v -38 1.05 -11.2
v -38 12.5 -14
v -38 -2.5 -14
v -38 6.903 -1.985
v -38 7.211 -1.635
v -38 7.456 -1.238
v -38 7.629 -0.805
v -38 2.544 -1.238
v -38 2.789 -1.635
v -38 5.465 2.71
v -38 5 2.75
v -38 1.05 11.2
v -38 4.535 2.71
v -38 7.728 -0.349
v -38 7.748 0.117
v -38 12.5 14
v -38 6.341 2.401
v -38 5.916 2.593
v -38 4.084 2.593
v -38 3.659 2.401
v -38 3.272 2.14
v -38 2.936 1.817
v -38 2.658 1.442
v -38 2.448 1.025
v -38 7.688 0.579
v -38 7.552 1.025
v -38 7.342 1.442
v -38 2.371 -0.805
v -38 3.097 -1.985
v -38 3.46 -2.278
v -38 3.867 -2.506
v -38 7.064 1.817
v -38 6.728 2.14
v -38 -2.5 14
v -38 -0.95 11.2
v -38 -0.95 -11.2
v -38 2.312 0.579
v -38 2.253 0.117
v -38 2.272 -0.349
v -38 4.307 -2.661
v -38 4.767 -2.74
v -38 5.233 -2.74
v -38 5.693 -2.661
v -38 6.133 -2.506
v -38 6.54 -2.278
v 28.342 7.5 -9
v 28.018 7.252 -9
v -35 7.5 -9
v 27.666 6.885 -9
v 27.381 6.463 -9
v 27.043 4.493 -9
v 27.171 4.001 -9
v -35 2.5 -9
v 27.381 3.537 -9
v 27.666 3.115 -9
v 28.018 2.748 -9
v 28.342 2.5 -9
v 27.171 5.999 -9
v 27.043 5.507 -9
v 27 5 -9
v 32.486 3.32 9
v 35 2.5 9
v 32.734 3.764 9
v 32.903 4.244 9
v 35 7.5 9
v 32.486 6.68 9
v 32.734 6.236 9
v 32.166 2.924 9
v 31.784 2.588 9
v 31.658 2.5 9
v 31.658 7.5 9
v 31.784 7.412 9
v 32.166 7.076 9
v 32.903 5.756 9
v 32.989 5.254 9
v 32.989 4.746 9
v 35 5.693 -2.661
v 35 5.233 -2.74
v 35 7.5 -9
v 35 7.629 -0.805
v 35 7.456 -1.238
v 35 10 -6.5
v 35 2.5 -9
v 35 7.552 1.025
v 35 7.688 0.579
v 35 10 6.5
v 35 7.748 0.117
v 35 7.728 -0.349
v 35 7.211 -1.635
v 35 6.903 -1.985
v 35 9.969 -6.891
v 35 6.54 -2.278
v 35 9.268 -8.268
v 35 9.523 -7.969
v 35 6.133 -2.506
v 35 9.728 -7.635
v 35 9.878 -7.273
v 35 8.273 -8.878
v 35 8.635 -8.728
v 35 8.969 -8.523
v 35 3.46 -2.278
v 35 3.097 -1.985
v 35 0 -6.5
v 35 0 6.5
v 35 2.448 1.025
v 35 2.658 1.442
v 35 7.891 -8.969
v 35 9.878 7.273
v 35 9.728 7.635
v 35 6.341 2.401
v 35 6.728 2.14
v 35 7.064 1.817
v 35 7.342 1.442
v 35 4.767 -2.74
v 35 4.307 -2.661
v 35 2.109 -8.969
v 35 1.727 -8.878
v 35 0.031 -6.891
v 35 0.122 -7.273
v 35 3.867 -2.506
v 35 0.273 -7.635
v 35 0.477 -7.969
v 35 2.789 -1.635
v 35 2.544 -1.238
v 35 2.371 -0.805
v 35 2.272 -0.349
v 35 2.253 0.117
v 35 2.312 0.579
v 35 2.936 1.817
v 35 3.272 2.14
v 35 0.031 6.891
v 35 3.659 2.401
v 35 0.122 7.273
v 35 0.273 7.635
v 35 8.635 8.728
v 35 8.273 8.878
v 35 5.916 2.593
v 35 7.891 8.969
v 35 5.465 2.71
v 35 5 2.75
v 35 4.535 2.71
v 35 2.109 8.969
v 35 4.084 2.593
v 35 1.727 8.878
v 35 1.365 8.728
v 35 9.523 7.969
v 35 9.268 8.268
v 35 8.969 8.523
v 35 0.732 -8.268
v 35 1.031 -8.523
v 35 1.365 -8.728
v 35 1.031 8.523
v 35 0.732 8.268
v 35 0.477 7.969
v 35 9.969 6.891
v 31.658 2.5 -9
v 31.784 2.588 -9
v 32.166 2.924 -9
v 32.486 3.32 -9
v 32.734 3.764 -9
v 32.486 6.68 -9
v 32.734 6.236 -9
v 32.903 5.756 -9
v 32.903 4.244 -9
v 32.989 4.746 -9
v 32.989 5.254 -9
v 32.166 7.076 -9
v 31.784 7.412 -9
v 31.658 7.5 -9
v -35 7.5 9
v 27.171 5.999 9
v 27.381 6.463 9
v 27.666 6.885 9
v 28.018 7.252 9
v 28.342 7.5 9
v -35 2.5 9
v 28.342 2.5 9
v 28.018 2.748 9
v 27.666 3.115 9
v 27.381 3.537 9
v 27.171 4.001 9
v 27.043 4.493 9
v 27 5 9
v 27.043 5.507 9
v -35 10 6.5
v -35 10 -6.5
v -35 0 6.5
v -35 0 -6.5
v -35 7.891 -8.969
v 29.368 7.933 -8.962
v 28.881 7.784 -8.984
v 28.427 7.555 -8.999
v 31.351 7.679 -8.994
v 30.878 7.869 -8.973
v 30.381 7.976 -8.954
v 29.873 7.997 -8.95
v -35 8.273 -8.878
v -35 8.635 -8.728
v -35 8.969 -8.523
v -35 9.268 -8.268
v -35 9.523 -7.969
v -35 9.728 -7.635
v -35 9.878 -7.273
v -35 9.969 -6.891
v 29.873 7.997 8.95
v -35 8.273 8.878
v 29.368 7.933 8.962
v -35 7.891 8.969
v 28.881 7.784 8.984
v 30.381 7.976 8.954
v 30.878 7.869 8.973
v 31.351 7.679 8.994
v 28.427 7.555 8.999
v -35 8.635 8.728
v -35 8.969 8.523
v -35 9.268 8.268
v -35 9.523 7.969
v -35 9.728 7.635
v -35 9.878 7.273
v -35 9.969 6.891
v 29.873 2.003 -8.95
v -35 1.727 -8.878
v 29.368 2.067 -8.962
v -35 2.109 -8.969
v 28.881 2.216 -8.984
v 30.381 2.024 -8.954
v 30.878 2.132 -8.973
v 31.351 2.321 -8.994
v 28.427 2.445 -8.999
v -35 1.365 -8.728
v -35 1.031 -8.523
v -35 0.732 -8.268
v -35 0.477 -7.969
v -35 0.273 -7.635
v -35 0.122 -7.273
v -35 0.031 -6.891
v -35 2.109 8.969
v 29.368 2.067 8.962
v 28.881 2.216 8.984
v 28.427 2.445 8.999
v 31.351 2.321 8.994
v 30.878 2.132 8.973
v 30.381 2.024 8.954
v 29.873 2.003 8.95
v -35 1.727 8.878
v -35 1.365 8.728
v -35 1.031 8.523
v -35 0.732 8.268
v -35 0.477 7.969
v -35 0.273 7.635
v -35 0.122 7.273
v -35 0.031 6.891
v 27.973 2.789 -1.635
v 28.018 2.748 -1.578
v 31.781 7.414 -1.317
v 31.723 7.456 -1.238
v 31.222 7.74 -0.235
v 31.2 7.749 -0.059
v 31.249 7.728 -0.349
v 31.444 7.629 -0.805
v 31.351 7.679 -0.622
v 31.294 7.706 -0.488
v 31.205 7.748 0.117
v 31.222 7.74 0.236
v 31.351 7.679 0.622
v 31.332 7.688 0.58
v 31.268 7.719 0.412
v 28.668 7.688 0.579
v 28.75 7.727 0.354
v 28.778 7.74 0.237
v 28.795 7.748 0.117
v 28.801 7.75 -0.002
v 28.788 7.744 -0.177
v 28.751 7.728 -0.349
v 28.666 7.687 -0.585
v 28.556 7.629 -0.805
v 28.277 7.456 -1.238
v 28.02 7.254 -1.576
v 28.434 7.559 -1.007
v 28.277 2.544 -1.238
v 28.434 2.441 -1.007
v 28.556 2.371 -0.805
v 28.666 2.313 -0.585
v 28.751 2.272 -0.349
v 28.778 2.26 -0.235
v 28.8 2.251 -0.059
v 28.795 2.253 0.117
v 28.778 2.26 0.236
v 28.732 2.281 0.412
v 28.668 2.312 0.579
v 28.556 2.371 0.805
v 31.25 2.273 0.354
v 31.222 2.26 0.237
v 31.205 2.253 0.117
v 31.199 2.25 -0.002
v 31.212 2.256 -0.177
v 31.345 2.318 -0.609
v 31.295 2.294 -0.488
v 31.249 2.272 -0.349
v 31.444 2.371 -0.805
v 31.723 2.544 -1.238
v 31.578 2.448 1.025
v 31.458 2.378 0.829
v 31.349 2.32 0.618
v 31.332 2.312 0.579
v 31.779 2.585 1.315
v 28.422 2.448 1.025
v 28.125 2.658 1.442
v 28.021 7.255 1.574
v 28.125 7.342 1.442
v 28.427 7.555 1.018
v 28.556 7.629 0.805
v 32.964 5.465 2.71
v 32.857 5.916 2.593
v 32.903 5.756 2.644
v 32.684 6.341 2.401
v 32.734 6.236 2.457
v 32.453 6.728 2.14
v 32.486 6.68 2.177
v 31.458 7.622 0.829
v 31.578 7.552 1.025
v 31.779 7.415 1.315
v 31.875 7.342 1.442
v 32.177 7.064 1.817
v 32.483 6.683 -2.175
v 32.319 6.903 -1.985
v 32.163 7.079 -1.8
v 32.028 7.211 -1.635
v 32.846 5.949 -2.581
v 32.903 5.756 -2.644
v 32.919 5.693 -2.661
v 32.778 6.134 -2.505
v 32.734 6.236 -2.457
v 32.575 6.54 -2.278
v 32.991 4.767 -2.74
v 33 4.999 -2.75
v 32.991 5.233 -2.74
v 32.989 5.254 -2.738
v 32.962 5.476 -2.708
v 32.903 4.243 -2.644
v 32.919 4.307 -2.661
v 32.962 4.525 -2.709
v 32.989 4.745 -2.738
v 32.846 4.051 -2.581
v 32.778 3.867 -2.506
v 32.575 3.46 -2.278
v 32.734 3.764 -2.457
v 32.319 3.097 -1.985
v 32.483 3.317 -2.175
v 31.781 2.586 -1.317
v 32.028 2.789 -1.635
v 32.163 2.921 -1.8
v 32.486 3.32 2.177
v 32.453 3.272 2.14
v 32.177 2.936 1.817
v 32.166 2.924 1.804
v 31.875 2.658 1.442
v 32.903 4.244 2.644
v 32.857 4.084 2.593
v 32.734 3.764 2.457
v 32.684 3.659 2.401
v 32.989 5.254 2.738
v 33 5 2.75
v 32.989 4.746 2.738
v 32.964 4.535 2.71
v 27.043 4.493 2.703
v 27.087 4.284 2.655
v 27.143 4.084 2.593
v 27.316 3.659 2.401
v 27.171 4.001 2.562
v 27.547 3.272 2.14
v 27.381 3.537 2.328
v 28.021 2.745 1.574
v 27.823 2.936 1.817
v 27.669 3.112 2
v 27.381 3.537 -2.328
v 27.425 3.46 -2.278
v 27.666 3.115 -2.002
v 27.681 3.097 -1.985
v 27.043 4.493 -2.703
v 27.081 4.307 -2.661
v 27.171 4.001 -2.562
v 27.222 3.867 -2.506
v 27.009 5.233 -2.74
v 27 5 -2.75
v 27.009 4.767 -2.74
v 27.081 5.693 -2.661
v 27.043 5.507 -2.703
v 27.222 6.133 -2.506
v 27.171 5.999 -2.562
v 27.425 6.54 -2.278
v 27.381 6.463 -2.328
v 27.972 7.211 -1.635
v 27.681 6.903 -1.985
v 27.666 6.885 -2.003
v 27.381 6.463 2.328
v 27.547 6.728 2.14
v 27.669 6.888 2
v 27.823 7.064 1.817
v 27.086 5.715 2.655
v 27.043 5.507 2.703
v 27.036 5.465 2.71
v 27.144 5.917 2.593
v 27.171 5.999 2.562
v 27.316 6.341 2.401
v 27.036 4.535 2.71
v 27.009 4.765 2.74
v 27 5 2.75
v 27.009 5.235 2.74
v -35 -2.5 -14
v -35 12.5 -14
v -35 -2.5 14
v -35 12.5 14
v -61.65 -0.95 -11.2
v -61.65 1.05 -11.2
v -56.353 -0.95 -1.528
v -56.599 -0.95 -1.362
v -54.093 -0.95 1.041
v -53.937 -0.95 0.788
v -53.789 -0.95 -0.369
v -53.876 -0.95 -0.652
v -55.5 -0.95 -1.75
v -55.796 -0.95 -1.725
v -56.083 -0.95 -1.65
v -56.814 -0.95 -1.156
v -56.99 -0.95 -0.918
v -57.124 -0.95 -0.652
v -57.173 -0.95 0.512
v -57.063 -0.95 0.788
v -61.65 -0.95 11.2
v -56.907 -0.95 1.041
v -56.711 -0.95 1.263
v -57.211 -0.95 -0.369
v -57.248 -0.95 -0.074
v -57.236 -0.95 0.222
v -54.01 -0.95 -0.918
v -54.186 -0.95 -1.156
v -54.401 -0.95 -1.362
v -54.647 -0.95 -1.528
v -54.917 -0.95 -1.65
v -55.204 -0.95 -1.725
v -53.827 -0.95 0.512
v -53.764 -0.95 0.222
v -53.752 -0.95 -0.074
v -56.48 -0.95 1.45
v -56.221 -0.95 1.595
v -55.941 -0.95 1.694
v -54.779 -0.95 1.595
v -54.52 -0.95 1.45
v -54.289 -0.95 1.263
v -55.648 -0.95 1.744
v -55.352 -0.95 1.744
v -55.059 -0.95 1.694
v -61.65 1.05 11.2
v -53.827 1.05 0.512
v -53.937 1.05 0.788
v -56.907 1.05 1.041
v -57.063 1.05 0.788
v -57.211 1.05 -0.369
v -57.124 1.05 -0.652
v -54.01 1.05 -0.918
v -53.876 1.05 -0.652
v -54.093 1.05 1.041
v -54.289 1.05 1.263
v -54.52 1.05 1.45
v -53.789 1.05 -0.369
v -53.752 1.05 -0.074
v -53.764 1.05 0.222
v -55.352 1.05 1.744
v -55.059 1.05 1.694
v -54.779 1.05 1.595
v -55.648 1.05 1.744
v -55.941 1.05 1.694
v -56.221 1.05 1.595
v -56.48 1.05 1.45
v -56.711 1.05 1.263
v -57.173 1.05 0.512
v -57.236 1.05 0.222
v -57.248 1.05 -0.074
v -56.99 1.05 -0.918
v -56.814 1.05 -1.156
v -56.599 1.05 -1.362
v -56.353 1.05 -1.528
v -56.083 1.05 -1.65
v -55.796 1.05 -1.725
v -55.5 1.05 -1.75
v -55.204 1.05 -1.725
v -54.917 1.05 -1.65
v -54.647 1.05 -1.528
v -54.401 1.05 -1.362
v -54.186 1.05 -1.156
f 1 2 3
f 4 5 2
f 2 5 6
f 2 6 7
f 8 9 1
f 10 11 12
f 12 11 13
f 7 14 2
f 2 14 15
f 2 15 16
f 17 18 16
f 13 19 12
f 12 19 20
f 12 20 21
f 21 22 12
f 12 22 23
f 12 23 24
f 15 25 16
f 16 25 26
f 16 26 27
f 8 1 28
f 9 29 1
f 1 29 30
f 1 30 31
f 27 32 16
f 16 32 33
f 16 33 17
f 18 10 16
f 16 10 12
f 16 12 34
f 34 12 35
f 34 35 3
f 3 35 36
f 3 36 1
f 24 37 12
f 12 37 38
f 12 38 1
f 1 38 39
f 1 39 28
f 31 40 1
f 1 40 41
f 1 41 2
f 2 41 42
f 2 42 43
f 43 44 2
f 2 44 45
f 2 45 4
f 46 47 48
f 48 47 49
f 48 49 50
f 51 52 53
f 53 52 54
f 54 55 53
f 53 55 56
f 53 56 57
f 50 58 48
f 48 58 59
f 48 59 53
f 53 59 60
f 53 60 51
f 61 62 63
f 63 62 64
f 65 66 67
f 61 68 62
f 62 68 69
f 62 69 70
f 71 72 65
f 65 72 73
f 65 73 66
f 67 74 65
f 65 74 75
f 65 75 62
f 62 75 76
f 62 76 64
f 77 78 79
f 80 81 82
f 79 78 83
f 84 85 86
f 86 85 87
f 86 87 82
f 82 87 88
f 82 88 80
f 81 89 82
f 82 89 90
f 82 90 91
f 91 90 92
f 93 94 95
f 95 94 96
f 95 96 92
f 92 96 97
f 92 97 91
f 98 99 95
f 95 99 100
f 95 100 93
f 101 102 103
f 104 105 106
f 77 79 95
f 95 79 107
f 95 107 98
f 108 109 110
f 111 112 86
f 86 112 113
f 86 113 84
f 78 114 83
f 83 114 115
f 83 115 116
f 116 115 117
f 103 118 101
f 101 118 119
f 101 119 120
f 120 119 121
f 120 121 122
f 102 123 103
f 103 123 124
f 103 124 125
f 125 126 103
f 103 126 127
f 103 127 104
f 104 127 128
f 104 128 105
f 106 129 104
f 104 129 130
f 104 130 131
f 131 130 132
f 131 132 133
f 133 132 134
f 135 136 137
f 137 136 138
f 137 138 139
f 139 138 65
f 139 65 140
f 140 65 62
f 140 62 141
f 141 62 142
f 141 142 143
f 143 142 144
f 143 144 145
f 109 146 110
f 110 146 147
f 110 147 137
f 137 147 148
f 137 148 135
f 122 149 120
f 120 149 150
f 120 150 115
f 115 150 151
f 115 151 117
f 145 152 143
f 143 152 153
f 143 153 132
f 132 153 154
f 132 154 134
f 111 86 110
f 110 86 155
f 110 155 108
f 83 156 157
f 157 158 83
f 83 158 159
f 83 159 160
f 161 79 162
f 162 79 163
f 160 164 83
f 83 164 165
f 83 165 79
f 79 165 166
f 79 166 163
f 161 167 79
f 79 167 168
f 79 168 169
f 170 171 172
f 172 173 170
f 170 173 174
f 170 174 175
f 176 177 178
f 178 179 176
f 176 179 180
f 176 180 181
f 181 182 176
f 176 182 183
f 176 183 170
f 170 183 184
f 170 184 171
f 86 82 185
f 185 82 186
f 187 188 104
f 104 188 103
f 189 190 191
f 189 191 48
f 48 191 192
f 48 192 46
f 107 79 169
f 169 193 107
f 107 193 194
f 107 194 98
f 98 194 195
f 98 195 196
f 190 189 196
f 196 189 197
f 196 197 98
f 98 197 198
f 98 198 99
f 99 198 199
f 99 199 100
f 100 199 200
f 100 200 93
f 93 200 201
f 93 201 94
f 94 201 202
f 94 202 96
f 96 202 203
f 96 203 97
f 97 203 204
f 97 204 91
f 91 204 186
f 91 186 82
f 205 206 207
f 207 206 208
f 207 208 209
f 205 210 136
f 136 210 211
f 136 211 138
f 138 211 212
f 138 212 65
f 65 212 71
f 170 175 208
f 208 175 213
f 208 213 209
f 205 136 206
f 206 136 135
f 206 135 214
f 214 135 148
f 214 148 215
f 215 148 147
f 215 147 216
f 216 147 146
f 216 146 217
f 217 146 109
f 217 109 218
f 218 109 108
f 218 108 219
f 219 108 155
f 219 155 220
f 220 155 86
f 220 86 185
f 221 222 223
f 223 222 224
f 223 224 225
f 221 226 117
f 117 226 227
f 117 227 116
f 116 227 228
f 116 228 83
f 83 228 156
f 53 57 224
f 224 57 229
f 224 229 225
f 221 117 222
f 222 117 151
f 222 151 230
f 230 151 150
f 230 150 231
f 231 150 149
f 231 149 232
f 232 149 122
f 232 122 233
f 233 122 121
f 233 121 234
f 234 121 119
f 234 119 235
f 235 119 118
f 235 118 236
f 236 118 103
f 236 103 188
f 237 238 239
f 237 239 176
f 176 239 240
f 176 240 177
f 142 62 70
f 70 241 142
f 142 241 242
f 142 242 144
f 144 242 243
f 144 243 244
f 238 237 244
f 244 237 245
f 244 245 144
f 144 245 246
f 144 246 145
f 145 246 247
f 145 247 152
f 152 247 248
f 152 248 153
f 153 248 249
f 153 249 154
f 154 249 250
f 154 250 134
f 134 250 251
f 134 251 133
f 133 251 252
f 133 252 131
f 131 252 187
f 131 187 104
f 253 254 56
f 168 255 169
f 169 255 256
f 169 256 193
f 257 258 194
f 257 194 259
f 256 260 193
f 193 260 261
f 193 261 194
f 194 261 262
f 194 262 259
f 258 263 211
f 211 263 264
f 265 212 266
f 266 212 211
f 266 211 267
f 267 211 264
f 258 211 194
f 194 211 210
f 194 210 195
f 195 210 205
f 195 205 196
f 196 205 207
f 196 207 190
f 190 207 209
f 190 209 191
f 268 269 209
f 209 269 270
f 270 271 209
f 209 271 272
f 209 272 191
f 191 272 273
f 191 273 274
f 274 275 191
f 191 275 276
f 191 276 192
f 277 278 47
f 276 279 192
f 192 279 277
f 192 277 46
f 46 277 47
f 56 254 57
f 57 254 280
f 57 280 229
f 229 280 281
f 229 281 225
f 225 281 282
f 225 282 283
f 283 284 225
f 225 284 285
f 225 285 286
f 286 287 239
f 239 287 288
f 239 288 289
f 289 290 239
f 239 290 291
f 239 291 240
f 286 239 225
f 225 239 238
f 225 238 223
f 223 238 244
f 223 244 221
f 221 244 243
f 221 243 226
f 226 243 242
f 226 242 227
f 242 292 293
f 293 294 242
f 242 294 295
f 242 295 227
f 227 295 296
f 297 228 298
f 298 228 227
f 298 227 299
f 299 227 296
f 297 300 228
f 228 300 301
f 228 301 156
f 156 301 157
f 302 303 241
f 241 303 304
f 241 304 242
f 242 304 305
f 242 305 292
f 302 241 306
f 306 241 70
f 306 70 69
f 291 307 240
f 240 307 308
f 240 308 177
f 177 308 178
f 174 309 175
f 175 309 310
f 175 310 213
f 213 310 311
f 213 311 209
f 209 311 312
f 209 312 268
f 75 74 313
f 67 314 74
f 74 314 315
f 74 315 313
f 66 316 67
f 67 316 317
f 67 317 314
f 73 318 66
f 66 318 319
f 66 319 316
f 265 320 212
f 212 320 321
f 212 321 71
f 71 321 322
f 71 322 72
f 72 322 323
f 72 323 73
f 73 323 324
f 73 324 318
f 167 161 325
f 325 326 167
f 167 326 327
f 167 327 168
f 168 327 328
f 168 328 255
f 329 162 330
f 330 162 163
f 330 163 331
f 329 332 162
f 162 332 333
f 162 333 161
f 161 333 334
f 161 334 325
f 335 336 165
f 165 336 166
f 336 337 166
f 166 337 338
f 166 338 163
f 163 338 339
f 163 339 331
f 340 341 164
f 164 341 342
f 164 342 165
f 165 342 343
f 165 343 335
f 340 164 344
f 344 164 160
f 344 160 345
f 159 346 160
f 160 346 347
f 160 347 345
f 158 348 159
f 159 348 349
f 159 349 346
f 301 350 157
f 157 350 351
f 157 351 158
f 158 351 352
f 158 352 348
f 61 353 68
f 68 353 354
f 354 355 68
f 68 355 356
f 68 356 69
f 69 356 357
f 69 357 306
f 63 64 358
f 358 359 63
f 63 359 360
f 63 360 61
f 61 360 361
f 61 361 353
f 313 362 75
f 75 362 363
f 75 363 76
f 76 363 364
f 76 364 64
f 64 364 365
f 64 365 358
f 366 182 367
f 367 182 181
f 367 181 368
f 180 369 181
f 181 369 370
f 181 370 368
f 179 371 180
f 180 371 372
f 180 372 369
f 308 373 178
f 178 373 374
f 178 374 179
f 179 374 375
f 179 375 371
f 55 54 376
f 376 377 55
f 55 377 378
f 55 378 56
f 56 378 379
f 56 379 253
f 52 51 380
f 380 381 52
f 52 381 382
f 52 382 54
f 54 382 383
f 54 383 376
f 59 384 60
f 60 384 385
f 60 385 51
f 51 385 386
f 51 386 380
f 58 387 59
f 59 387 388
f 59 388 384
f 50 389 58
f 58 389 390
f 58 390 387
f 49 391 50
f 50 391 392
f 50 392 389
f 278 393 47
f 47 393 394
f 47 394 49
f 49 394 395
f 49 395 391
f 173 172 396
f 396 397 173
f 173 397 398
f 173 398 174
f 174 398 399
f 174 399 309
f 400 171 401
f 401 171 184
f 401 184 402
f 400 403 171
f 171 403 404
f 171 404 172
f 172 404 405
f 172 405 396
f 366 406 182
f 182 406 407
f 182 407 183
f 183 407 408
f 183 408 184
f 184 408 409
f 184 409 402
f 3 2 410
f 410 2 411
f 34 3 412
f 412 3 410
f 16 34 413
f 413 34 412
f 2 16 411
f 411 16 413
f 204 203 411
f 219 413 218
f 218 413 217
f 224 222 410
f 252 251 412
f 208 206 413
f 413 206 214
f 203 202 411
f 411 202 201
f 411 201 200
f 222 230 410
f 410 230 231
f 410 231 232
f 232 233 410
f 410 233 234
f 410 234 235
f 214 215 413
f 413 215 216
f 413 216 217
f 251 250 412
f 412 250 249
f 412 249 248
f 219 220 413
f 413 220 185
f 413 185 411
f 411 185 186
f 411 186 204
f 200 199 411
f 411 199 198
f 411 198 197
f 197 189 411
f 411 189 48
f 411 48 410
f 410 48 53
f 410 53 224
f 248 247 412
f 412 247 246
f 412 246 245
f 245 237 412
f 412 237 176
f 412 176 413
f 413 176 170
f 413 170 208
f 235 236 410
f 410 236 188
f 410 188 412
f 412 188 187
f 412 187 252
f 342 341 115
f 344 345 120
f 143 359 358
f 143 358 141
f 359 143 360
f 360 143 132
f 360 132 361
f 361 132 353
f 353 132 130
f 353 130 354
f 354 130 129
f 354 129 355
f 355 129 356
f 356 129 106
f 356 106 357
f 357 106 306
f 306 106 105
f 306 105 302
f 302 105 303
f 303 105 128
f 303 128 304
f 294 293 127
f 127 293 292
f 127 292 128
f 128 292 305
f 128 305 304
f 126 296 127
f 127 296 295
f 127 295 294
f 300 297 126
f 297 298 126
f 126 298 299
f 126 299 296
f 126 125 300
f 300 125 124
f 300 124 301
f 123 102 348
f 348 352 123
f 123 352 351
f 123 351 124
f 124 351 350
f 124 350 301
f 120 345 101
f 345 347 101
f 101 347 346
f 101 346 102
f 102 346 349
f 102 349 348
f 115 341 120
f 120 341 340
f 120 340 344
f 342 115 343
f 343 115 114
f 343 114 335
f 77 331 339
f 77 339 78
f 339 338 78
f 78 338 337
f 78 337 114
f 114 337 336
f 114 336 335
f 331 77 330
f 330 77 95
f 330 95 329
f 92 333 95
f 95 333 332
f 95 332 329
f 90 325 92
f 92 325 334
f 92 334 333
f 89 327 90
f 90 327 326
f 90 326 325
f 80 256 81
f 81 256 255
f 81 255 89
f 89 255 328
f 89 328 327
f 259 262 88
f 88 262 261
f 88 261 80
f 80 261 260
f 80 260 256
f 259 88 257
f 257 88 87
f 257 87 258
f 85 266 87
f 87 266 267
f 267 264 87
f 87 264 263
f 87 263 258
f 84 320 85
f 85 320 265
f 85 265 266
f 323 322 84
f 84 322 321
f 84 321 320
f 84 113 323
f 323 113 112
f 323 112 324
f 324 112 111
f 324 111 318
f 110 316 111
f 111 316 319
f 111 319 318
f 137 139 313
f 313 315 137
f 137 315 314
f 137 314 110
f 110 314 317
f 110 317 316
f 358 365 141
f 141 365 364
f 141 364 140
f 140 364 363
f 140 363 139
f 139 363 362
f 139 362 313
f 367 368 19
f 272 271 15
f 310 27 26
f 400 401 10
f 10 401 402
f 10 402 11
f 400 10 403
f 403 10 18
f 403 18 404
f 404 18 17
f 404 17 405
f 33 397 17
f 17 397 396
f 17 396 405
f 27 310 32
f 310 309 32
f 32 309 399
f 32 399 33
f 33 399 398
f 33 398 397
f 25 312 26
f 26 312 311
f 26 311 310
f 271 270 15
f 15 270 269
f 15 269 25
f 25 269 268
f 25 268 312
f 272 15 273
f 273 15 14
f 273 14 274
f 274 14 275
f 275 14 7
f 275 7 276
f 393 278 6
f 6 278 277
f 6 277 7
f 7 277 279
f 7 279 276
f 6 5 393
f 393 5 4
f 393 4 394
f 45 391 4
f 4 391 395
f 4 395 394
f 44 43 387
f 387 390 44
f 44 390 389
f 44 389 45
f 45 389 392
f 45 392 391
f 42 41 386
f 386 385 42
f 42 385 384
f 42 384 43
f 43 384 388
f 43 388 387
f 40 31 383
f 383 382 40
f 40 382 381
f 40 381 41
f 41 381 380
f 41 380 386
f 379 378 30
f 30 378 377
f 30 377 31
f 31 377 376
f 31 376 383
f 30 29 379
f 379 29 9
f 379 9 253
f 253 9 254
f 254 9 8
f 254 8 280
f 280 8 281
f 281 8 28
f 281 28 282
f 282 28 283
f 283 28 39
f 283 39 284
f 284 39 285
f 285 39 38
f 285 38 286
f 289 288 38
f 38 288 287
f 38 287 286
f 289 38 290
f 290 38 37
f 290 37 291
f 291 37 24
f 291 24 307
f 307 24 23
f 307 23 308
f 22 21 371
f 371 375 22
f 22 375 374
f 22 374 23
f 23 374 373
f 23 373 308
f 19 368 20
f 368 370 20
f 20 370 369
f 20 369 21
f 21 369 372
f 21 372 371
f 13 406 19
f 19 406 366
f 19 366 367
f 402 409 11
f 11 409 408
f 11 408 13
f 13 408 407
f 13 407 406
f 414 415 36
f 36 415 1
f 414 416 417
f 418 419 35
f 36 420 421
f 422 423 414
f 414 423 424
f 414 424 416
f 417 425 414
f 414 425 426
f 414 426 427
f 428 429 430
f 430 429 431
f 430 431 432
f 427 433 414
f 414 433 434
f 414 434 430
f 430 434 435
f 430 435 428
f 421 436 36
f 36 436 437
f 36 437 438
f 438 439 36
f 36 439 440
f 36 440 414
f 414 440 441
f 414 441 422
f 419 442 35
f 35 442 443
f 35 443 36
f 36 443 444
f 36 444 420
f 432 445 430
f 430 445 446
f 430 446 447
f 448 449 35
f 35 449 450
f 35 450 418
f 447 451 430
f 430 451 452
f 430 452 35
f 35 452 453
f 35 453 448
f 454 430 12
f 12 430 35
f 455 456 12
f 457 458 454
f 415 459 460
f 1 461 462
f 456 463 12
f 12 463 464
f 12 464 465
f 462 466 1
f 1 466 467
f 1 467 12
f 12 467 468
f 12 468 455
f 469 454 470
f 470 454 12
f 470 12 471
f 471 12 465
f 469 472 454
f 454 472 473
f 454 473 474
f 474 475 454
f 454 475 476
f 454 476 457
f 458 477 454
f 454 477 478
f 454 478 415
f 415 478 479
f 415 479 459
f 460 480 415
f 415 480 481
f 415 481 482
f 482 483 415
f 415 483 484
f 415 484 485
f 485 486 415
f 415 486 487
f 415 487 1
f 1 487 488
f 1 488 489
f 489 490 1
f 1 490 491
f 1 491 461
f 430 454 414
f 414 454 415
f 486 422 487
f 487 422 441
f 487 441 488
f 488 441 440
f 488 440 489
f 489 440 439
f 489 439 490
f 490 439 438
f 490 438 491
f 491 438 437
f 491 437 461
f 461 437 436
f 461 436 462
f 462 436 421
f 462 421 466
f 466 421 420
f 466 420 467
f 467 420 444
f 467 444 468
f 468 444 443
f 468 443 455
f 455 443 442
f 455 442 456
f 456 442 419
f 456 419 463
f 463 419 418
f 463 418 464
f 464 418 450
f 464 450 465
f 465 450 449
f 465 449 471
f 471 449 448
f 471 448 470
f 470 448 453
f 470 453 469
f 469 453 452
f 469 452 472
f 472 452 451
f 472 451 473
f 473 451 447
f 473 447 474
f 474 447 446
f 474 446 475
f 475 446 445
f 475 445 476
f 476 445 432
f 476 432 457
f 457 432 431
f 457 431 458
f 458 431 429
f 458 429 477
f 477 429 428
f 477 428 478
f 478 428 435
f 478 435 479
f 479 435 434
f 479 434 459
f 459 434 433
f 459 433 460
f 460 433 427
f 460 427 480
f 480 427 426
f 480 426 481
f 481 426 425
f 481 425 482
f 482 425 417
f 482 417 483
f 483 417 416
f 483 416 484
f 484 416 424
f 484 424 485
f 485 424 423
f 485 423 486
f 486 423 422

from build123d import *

# Parameters (mm, degrees)
SCHIZZO1_W                   = 70
SCHIZZO1_H                   = 18
ESTRUSIONE_ESTRUSIONE1_DEPTH = 10
RACCORDO1_R                  = 2.5
RACCORDO2_R                  = 2.5
RACCORDO3_R                  = 2.5
RACCORDO4_R                  = 2.5
FORO_PER_VITE_5_16_3_D       = 5.999999938
SCHIZZO6_W                   = 28
SCHIZZO6_H                   = 15
ESTRUSIONE_ESTRUSIONE2_DEPTH = 3
FORO_PER_VITE_M4_1_D         = 5.5
SCHIZZO12_W                  = 22.4
SCHIZZO12_H                  = 2
ESTRUSIONE_ESTRUSIONE3_DEPTH = 23.65
SCHIZZO13_R                  = 1.75
TAGLIO_ESTRUSIONE1_DEPTH     = 23.75


with BuildPart() as part:
    # Schizzo1 → Estrusione-Estrusione1 (new body)
    with BuildSketch(Plane(origin=(0, 0, 0), x_dir=(1, 0, 0), z_dir=(0, 1, 0))):
        Rectangle(SCHIZZO1_W, SCHIZZO1_H)
    extrude(amount=ESTRUSIONE_ESTRUSIONE1_DEPTH)

    # Raccordo1
    raccordo1_edges = [part.edges().sort_by_distance(p)[0] for p in [
        (0, 10, -9),
    ]]
    fillet(raccordo1_edges, radius=RACCORDO1_R)

    # Raccordo2
    raccordo2_edges = [part.edges().sort_by_distance(p)[0] for p in [
        (0, 10, 9),
    ]]
    fillet(raccordo2_edges, radius=RACCORDO2_R)

    # Raccordo3
    raccordo3_edges = [part.edges().sort_by_distance(p)[0] for p in [
        (0, 0, -9),
    ]]
    fillet(raccordo3_edges, radius=RACCORDO3_R)

    # Raccordo4
    raccordo4_edges = [part.edges().sort_by_distance(p)[0] for p in [
        (0, 0, 9),
    ]]
    fillet(raccordo4_edges, radius=RACCORDO4_R)

    # Foro per Vite 5/16-3 (through all)
    with Locations(Plane(origin=(30, 5, -9), x_dir=(-1, 0, 0), z_dir=(0, 0, -1))):
        with Locations((0, 0)):
            Hole(FORO_PER_VITE_5_16_3_D / 2)

    # Schizzo6 → Estrusione-Estrusione2 (add)
    with BuildSketch(Plane.ZY.offset(35)):
        with Locations((0, 5)):
            Rectangle(SCHIZZO6_W, SCHIZZO6_H)
    extrude(amount=ESTRUSIONE_ESTRUSIONE2_DEPTH)

    # Foro per Vite M4-1 (through all)
    with Locations(Plane.ZY.offset(38)):
        with Locations((0, 5)):
            Hole(FORO_PER_VITE_M4_1_D / 2)

    # Schizzo12 → Estrusione-Estrusione3 (add)
    with BuildSketch(Plane.ZY.offset(38)):
        with Locations((0, 0.05)):
            Rectangle(SCHIZZO12_W, SCHIZZO12_H)
    extrude(amount=ESTRUSIONE_ESTRUSIONE3_DEPTH)

    # Schizzo13 → Taglio-Estrusione1 (cut)
    with BuildSketch(Plane.XZ.offset(0.95)):
        with Locations(Location((-55.5, 0, 0), (0, 0, 270))):
            Circle(SCHIZZO13_R)
    extrude(amount=-TAGLIO_ESTRUSIONE1_DEPTH, mode=Mode.SUBTRACT)


solid = part.part
